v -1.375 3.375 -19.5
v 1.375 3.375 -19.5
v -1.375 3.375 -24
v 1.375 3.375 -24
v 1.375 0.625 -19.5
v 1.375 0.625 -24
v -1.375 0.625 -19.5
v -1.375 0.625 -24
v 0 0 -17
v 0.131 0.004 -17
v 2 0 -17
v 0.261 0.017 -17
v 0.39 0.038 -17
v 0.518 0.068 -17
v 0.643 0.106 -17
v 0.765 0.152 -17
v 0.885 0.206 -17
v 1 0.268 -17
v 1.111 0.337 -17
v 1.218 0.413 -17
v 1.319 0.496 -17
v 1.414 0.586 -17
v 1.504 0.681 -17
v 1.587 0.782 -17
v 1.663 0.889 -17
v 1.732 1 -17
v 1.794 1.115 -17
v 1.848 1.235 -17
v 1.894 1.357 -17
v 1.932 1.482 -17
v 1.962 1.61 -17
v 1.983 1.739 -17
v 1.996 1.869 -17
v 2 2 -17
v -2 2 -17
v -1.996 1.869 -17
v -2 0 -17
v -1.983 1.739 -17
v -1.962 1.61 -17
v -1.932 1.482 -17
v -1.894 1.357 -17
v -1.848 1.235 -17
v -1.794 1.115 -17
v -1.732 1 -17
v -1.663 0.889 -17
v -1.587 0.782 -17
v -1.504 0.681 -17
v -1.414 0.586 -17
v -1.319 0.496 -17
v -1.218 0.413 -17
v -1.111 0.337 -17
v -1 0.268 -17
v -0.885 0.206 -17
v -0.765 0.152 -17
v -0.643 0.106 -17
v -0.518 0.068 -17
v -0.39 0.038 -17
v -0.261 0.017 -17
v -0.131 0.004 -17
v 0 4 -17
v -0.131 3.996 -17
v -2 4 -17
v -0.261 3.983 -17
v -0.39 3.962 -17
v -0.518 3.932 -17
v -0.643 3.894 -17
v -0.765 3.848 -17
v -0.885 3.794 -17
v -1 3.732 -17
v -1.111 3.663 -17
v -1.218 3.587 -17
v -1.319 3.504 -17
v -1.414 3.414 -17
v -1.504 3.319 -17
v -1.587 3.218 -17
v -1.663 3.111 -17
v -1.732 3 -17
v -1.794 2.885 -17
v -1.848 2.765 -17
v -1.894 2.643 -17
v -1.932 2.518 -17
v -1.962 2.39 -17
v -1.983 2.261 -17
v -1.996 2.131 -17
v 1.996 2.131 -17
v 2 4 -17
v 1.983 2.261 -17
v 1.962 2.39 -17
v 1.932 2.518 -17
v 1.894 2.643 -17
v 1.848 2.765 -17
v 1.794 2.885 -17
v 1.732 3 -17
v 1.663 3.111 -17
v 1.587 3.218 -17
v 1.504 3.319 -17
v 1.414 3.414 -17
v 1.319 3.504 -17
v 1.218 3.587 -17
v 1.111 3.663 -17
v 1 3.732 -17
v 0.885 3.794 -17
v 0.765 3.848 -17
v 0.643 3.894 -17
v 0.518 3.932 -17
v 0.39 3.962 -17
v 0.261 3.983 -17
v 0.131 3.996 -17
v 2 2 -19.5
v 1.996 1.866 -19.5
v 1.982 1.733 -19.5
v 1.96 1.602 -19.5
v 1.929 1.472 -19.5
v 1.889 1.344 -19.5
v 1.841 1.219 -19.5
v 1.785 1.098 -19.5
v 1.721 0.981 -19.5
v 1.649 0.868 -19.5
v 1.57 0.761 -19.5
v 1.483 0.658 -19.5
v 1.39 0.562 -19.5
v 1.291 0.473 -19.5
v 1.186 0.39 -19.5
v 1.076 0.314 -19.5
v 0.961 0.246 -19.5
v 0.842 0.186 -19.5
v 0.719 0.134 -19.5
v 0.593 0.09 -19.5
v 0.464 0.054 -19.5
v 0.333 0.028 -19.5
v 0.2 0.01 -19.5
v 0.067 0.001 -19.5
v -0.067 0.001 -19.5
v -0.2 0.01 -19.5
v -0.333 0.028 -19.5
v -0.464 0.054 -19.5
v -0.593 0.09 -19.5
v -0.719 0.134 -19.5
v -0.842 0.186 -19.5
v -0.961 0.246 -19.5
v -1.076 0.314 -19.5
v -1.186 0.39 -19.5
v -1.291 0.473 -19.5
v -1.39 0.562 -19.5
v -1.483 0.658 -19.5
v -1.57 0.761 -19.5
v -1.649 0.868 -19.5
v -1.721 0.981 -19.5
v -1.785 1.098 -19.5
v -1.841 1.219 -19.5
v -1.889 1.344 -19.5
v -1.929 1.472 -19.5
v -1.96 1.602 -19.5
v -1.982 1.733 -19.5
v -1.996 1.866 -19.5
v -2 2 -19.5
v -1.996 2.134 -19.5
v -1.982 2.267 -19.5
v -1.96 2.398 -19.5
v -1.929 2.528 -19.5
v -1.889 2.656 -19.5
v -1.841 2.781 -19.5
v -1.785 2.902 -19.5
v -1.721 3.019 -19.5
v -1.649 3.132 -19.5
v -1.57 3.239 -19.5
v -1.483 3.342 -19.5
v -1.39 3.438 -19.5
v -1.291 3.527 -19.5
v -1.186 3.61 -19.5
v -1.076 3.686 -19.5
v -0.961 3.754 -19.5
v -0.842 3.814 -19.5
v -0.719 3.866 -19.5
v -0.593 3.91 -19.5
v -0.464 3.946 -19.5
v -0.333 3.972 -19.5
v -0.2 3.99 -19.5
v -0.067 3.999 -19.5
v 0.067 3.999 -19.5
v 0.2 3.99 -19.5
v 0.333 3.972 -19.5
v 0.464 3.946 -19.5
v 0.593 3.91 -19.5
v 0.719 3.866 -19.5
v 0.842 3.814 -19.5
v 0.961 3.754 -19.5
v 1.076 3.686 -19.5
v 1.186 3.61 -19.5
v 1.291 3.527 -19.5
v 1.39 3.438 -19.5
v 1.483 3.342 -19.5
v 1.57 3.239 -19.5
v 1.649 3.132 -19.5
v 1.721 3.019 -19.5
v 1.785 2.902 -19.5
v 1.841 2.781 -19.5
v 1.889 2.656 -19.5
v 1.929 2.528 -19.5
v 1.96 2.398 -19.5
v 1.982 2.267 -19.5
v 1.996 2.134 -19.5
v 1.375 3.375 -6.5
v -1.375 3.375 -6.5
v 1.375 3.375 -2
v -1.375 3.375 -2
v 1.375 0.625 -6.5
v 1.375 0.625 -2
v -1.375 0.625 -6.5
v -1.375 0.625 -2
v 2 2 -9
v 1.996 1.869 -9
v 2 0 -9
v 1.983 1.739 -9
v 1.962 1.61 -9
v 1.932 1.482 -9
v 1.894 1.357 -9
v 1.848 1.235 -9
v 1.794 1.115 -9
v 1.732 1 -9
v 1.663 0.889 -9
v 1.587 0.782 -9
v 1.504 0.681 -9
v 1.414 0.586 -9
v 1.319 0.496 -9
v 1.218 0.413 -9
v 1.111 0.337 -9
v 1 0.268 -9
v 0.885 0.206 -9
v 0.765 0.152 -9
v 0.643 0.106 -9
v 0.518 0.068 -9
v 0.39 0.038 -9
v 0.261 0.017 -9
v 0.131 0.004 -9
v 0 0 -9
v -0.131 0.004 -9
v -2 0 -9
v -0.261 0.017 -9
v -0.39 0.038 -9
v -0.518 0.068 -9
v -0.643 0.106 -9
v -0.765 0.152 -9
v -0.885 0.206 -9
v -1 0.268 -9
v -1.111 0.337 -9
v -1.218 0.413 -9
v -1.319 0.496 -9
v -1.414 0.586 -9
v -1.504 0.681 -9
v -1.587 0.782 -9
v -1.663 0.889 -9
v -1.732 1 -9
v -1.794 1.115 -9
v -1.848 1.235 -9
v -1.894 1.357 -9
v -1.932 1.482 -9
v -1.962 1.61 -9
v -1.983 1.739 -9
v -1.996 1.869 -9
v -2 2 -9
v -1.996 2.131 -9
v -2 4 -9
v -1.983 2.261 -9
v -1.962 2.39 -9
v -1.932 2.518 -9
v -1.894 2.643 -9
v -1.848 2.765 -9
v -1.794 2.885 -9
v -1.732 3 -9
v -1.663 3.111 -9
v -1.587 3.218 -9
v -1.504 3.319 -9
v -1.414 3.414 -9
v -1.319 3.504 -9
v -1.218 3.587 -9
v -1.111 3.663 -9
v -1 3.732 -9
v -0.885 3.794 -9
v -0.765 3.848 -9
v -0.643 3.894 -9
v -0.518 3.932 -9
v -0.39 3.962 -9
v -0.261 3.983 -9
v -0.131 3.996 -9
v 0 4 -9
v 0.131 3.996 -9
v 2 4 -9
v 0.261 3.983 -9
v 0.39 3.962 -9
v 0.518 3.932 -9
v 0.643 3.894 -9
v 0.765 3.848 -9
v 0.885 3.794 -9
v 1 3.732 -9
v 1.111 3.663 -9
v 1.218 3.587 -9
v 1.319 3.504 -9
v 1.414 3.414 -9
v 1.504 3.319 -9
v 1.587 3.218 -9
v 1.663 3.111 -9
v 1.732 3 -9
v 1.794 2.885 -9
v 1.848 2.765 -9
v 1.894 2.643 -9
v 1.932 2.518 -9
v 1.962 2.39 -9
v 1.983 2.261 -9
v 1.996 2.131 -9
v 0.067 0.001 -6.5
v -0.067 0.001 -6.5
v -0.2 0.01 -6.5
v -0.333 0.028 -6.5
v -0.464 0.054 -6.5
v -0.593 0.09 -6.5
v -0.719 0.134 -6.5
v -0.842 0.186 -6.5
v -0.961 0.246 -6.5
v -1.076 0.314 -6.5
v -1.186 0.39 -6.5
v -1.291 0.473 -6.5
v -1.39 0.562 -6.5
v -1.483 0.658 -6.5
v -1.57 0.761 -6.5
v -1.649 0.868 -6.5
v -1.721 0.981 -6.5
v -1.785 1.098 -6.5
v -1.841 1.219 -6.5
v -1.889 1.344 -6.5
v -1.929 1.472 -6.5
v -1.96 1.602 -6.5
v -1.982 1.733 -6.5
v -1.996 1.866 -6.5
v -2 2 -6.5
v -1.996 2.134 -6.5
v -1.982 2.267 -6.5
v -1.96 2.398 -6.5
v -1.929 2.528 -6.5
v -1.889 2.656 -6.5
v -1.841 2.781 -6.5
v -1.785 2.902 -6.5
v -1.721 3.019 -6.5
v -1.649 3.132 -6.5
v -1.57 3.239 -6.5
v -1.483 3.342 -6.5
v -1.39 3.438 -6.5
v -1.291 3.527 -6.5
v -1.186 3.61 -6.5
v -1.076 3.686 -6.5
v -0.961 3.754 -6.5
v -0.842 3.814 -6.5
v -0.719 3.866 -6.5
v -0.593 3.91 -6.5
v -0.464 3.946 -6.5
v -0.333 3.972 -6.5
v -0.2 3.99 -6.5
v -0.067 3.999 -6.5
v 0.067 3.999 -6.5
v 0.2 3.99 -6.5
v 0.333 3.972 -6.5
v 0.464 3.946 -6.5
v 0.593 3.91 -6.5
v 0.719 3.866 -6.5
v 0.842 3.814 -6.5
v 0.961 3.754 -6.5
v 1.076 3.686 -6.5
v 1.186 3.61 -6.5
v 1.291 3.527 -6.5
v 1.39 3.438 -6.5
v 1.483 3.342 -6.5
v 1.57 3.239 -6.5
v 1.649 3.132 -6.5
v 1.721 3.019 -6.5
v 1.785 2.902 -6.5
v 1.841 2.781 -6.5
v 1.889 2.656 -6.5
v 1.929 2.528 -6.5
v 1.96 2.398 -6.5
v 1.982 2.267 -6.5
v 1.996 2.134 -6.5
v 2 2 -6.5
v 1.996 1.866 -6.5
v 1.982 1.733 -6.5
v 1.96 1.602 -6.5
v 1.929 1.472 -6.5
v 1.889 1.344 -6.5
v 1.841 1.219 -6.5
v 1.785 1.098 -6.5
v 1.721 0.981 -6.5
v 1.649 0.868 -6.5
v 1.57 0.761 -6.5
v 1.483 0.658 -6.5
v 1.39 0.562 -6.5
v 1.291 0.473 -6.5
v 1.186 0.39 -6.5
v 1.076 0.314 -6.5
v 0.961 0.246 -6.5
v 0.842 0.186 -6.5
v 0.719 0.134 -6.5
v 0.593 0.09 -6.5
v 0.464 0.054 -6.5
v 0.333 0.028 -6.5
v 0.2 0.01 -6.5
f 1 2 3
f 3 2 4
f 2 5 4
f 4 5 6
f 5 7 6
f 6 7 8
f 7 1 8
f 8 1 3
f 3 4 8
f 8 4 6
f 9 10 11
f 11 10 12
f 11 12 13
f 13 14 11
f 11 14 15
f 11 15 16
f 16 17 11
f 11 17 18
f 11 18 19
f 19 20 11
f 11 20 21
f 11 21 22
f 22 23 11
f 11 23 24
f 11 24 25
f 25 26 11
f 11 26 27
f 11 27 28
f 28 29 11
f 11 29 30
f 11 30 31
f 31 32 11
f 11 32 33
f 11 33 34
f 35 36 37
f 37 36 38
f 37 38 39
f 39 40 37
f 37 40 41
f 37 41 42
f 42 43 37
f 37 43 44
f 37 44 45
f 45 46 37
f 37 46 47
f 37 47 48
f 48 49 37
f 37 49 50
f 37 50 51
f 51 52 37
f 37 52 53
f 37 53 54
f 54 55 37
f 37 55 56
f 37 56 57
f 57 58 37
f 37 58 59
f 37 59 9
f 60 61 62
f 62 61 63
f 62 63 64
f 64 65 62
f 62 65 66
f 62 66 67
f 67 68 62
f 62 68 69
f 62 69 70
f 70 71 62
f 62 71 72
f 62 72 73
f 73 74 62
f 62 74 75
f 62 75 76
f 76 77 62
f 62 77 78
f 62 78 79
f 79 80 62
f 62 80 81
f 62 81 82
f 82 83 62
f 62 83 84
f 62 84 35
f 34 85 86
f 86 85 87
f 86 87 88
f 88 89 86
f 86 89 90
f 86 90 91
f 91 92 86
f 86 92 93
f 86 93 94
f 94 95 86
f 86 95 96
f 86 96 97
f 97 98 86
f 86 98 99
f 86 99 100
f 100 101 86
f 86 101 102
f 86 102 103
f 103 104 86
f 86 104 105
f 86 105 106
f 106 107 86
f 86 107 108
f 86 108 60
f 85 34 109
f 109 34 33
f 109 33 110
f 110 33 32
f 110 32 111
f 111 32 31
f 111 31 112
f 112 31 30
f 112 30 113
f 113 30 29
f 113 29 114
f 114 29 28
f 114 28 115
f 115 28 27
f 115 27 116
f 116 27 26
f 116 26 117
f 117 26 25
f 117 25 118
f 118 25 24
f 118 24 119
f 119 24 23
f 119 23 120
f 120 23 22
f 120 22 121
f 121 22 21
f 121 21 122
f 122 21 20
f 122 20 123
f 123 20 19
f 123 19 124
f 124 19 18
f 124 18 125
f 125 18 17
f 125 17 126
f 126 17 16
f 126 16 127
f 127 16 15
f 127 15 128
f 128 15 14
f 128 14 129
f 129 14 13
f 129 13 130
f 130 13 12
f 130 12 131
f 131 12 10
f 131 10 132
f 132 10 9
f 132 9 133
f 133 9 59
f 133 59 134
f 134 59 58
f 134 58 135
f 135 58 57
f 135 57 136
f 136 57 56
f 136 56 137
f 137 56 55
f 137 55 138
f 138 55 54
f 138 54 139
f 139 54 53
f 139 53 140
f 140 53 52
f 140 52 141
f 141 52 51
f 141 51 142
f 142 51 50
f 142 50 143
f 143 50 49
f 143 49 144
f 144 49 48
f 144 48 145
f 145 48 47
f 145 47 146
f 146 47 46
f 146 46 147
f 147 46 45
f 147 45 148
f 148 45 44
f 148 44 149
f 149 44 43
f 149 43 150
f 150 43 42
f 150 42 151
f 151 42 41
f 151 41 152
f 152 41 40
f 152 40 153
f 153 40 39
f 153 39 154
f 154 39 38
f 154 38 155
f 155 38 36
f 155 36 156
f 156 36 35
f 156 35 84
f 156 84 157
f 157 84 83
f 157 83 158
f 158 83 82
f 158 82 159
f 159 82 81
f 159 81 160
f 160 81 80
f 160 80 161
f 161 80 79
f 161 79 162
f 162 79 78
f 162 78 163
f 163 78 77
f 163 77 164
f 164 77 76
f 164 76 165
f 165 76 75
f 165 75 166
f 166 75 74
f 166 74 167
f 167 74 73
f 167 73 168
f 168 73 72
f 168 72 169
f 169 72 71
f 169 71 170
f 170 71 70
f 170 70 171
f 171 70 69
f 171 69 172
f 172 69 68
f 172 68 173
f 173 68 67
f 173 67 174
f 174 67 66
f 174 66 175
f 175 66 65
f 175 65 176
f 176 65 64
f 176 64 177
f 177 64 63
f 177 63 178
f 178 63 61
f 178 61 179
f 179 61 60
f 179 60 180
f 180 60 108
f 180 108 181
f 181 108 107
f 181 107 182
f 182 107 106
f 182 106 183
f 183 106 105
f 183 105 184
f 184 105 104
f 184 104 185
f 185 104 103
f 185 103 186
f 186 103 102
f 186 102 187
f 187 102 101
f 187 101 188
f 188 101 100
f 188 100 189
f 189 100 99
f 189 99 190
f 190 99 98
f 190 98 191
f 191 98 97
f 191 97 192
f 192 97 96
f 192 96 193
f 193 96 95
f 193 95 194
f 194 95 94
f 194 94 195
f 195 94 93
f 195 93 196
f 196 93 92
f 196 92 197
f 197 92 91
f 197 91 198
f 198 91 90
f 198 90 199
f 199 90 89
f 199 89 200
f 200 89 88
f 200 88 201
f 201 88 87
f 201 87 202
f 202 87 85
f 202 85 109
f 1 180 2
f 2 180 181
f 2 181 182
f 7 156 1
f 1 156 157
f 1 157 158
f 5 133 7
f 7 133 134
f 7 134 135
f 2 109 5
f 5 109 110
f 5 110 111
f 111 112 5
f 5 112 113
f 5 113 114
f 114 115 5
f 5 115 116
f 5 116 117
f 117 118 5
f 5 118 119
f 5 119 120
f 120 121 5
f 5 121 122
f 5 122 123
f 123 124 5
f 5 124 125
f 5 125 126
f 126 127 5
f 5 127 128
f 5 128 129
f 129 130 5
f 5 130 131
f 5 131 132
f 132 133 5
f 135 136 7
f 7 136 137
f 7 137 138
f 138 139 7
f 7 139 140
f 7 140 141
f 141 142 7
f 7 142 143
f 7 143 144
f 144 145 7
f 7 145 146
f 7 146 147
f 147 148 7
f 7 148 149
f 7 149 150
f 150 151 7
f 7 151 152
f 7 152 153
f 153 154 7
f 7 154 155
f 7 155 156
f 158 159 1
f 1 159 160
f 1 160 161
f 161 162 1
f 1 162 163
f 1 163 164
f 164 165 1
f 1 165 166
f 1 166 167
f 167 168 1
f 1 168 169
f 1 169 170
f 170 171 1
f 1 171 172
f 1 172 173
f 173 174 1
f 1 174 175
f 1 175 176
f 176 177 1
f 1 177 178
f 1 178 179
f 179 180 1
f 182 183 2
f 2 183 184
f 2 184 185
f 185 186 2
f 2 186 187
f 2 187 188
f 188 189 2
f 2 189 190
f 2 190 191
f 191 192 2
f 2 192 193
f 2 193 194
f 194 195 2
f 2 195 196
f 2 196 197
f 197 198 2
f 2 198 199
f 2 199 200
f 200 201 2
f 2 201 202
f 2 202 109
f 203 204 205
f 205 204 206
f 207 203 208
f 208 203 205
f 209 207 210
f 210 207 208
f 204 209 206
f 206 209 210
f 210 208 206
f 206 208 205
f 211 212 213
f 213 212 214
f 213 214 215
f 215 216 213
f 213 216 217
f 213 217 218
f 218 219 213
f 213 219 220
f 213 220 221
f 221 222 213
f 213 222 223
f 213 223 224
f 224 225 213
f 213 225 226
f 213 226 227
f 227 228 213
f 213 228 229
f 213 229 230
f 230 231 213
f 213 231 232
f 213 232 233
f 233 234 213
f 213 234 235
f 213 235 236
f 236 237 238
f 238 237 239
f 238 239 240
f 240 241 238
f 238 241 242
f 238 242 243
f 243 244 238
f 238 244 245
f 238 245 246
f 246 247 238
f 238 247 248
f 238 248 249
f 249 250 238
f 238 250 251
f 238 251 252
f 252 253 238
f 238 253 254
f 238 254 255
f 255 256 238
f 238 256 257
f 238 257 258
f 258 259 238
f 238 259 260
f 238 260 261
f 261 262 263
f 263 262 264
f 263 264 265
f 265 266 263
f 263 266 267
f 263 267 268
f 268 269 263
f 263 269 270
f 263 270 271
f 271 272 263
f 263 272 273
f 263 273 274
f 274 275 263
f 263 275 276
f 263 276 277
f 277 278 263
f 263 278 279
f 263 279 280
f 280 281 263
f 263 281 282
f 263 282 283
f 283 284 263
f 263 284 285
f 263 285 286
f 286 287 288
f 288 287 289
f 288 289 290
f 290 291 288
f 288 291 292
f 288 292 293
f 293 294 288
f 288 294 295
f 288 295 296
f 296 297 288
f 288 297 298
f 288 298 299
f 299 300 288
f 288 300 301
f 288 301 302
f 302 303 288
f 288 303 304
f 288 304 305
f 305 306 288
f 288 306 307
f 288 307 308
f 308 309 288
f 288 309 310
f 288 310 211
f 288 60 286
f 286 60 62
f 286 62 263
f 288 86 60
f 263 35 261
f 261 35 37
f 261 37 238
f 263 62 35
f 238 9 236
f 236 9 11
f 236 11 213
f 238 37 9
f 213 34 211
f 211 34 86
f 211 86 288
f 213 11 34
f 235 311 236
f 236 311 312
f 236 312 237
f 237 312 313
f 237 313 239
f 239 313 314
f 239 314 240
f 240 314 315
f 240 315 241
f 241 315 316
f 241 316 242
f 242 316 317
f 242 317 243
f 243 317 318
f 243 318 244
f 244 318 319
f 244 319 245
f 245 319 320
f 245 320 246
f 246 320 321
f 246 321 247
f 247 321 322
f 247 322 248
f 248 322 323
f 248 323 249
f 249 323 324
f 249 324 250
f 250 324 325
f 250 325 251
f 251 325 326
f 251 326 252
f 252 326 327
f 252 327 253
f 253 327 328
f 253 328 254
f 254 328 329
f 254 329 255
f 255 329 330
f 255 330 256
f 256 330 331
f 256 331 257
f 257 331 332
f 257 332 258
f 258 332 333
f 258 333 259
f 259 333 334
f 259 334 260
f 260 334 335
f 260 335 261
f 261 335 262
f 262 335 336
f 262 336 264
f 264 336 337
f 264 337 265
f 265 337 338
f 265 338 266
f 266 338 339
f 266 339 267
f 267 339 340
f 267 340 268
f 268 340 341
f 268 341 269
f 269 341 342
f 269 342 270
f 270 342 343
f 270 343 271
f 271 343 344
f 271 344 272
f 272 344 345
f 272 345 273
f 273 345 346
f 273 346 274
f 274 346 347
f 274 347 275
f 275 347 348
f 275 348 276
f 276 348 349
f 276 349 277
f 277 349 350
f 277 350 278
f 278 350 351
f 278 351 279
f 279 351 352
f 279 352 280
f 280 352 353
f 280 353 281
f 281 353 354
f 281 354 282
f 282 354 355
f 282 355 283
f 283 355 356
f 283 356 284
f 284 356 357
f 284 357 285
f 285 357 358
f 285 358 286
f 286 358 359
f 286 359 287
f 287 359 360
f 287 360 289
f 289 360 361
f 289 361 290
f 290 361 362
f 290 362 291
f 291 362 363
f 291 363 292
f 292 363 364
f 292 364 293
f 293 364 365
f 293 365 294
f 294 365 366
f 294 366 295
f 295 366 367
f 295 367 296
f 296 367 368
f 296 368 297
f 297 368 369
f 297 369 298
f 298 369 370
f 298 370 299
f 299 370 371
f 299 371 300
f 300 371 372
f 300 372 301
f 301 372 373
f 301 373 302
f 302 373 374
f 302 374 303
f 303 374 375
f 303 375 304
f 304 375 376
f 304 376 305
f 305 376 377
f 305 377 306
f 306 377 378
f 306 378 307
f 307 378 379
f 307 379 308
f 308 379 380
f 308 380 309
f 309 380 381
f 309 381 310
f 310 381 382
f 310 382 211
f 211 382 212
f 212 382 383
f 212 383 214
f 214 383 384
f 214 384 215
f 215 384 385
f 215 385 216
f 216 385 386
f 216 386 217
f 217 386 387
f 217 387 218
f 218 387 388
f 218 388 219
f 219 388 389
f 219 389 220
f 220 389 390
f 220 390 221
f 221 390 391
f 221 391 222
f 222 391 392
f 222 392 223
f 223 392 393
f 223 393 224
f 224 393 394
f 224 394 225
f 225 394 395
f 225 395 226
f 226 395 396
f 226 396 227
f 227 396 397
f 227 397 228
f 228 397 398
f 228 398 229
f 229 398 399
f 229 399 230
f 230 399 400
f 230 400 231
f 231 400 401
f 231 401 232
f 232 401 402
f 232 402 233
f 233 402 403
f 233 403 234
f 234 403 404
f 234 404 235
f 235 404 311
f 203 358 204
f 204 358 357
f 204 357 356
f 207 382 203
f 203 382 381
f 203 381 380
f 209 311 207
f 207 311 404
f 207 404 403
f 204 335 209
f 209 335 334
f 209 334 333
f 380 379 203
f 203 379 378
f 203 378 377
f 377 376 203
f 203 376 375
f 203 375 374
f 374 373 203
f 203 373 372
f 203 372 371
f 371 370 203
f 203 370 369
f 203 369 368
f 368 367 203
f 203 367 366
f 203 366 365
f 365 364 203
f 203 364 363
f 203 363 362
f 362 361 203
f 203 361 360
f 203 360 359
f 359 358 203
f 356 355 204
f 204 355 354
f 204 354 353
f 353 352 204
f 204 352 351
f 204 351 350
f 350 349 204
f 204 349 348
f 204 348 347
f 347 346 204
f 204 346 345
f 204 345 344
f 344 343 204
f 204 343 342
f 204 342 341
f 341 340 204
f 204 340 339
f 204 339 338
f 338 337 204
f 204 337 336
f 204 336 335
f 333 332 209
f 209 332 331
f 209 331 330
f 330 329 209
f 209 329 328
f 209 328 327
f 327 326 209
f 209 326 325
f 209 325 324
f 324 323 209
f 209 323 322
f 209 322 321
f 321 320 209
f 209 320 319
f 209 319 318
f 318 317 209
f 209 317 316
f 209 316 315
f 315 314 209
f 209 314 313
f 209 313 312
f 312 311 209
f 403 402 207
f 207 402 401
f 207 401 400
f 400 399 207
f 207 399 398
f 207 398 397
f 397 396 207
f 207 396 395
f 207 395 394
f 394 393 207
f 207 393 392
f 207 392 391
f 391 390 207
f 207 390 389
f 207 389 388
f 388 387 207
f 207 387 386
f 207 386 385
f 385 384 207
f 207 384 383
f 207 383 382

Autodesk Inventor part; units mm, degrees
ref_plane "YZ Plane" through (0, 0, 0) normal (1, 0, 0) x (0, 1, 0)
ref_plane "XZ Plane" through (0, 0, 0) normal (0, 1, 0) x (-1, 0, 0)
ref_plane "XY Plane" through (0, 0, 0) normal (0, 0, 1) x (1, 0, 0)
sketch "Sketch1" plane through (0, 0, 0) normal (0, 0, 1) x (1, 0, 0)
  circle A0 centre (0, 0) radius 4
  line L0 (4, 0) -> (2, -3.4641)
  line L1 (2, -3.4641) -> (-2, -3.4641)
  line L2 (-2, -3.4641) -> (-4, 0)
  line L3 (-4, 0) -> (-2, 3.4641)
  line L4 (-2, 3.4641) -> (2, 3.4641)
  line L5 (2, 3.4641) -> (4, 0)
  dimension "d0" = 8
extrude "Extrusion1" add sketch "Sketch1" against normal blind 5
sketch "Sketch2" plane through (0, 0, -5) normal (0, 0, -1) x (-1, 0, 0)
  circle A0 centre (0, 0) radius 4 projected
  line L0 (-4, 4) -> (4, 4)
  line L1 (4, 4) -> (4, -4)
  line L2 (4, -4) -> (-4, -4)
  line L3 (-4, -4) -> (-4, 4)
  point P0 (-4, 0)
extrude "Extrusion2" add sketch "Sketch2" along normal blind 8
sketch "Sketch3" plane through (0, 0, 0) normal (0, 0, 1) x (1, 0, 0)
  line L0 (4, -2.3094) -> (0, -4.6188) projected
  line L1 (-2.75, -2.75) -> (-2.75, 2.75)
  line L2 (-2.75, 2.75) -> (2.75, 2.75)
  line L3 (2.75, 2.75) -> (2.75, -2.75)
  line L4 (2.75, -2.75) -> (-2.75, -2.75)
  point P0 (0, 0)
  point P1 (0, -2.75)
  dimension "d7" = 5.5
  dimension "d8" = 5.5
extrude "Extrusion3" add sketch "Sketch3" along normal blind 9
mirror "Mirror1" about plane through (0, 0, -13) normal (0, 0, -1) of "Extrusion1", "Extrusion2", "Extrusion3"
scale "Scale1" factors (0.5, 0.5, 0.5) then translate (0, 2, -6.5) bodies 1
properties part number "GearAxis"
